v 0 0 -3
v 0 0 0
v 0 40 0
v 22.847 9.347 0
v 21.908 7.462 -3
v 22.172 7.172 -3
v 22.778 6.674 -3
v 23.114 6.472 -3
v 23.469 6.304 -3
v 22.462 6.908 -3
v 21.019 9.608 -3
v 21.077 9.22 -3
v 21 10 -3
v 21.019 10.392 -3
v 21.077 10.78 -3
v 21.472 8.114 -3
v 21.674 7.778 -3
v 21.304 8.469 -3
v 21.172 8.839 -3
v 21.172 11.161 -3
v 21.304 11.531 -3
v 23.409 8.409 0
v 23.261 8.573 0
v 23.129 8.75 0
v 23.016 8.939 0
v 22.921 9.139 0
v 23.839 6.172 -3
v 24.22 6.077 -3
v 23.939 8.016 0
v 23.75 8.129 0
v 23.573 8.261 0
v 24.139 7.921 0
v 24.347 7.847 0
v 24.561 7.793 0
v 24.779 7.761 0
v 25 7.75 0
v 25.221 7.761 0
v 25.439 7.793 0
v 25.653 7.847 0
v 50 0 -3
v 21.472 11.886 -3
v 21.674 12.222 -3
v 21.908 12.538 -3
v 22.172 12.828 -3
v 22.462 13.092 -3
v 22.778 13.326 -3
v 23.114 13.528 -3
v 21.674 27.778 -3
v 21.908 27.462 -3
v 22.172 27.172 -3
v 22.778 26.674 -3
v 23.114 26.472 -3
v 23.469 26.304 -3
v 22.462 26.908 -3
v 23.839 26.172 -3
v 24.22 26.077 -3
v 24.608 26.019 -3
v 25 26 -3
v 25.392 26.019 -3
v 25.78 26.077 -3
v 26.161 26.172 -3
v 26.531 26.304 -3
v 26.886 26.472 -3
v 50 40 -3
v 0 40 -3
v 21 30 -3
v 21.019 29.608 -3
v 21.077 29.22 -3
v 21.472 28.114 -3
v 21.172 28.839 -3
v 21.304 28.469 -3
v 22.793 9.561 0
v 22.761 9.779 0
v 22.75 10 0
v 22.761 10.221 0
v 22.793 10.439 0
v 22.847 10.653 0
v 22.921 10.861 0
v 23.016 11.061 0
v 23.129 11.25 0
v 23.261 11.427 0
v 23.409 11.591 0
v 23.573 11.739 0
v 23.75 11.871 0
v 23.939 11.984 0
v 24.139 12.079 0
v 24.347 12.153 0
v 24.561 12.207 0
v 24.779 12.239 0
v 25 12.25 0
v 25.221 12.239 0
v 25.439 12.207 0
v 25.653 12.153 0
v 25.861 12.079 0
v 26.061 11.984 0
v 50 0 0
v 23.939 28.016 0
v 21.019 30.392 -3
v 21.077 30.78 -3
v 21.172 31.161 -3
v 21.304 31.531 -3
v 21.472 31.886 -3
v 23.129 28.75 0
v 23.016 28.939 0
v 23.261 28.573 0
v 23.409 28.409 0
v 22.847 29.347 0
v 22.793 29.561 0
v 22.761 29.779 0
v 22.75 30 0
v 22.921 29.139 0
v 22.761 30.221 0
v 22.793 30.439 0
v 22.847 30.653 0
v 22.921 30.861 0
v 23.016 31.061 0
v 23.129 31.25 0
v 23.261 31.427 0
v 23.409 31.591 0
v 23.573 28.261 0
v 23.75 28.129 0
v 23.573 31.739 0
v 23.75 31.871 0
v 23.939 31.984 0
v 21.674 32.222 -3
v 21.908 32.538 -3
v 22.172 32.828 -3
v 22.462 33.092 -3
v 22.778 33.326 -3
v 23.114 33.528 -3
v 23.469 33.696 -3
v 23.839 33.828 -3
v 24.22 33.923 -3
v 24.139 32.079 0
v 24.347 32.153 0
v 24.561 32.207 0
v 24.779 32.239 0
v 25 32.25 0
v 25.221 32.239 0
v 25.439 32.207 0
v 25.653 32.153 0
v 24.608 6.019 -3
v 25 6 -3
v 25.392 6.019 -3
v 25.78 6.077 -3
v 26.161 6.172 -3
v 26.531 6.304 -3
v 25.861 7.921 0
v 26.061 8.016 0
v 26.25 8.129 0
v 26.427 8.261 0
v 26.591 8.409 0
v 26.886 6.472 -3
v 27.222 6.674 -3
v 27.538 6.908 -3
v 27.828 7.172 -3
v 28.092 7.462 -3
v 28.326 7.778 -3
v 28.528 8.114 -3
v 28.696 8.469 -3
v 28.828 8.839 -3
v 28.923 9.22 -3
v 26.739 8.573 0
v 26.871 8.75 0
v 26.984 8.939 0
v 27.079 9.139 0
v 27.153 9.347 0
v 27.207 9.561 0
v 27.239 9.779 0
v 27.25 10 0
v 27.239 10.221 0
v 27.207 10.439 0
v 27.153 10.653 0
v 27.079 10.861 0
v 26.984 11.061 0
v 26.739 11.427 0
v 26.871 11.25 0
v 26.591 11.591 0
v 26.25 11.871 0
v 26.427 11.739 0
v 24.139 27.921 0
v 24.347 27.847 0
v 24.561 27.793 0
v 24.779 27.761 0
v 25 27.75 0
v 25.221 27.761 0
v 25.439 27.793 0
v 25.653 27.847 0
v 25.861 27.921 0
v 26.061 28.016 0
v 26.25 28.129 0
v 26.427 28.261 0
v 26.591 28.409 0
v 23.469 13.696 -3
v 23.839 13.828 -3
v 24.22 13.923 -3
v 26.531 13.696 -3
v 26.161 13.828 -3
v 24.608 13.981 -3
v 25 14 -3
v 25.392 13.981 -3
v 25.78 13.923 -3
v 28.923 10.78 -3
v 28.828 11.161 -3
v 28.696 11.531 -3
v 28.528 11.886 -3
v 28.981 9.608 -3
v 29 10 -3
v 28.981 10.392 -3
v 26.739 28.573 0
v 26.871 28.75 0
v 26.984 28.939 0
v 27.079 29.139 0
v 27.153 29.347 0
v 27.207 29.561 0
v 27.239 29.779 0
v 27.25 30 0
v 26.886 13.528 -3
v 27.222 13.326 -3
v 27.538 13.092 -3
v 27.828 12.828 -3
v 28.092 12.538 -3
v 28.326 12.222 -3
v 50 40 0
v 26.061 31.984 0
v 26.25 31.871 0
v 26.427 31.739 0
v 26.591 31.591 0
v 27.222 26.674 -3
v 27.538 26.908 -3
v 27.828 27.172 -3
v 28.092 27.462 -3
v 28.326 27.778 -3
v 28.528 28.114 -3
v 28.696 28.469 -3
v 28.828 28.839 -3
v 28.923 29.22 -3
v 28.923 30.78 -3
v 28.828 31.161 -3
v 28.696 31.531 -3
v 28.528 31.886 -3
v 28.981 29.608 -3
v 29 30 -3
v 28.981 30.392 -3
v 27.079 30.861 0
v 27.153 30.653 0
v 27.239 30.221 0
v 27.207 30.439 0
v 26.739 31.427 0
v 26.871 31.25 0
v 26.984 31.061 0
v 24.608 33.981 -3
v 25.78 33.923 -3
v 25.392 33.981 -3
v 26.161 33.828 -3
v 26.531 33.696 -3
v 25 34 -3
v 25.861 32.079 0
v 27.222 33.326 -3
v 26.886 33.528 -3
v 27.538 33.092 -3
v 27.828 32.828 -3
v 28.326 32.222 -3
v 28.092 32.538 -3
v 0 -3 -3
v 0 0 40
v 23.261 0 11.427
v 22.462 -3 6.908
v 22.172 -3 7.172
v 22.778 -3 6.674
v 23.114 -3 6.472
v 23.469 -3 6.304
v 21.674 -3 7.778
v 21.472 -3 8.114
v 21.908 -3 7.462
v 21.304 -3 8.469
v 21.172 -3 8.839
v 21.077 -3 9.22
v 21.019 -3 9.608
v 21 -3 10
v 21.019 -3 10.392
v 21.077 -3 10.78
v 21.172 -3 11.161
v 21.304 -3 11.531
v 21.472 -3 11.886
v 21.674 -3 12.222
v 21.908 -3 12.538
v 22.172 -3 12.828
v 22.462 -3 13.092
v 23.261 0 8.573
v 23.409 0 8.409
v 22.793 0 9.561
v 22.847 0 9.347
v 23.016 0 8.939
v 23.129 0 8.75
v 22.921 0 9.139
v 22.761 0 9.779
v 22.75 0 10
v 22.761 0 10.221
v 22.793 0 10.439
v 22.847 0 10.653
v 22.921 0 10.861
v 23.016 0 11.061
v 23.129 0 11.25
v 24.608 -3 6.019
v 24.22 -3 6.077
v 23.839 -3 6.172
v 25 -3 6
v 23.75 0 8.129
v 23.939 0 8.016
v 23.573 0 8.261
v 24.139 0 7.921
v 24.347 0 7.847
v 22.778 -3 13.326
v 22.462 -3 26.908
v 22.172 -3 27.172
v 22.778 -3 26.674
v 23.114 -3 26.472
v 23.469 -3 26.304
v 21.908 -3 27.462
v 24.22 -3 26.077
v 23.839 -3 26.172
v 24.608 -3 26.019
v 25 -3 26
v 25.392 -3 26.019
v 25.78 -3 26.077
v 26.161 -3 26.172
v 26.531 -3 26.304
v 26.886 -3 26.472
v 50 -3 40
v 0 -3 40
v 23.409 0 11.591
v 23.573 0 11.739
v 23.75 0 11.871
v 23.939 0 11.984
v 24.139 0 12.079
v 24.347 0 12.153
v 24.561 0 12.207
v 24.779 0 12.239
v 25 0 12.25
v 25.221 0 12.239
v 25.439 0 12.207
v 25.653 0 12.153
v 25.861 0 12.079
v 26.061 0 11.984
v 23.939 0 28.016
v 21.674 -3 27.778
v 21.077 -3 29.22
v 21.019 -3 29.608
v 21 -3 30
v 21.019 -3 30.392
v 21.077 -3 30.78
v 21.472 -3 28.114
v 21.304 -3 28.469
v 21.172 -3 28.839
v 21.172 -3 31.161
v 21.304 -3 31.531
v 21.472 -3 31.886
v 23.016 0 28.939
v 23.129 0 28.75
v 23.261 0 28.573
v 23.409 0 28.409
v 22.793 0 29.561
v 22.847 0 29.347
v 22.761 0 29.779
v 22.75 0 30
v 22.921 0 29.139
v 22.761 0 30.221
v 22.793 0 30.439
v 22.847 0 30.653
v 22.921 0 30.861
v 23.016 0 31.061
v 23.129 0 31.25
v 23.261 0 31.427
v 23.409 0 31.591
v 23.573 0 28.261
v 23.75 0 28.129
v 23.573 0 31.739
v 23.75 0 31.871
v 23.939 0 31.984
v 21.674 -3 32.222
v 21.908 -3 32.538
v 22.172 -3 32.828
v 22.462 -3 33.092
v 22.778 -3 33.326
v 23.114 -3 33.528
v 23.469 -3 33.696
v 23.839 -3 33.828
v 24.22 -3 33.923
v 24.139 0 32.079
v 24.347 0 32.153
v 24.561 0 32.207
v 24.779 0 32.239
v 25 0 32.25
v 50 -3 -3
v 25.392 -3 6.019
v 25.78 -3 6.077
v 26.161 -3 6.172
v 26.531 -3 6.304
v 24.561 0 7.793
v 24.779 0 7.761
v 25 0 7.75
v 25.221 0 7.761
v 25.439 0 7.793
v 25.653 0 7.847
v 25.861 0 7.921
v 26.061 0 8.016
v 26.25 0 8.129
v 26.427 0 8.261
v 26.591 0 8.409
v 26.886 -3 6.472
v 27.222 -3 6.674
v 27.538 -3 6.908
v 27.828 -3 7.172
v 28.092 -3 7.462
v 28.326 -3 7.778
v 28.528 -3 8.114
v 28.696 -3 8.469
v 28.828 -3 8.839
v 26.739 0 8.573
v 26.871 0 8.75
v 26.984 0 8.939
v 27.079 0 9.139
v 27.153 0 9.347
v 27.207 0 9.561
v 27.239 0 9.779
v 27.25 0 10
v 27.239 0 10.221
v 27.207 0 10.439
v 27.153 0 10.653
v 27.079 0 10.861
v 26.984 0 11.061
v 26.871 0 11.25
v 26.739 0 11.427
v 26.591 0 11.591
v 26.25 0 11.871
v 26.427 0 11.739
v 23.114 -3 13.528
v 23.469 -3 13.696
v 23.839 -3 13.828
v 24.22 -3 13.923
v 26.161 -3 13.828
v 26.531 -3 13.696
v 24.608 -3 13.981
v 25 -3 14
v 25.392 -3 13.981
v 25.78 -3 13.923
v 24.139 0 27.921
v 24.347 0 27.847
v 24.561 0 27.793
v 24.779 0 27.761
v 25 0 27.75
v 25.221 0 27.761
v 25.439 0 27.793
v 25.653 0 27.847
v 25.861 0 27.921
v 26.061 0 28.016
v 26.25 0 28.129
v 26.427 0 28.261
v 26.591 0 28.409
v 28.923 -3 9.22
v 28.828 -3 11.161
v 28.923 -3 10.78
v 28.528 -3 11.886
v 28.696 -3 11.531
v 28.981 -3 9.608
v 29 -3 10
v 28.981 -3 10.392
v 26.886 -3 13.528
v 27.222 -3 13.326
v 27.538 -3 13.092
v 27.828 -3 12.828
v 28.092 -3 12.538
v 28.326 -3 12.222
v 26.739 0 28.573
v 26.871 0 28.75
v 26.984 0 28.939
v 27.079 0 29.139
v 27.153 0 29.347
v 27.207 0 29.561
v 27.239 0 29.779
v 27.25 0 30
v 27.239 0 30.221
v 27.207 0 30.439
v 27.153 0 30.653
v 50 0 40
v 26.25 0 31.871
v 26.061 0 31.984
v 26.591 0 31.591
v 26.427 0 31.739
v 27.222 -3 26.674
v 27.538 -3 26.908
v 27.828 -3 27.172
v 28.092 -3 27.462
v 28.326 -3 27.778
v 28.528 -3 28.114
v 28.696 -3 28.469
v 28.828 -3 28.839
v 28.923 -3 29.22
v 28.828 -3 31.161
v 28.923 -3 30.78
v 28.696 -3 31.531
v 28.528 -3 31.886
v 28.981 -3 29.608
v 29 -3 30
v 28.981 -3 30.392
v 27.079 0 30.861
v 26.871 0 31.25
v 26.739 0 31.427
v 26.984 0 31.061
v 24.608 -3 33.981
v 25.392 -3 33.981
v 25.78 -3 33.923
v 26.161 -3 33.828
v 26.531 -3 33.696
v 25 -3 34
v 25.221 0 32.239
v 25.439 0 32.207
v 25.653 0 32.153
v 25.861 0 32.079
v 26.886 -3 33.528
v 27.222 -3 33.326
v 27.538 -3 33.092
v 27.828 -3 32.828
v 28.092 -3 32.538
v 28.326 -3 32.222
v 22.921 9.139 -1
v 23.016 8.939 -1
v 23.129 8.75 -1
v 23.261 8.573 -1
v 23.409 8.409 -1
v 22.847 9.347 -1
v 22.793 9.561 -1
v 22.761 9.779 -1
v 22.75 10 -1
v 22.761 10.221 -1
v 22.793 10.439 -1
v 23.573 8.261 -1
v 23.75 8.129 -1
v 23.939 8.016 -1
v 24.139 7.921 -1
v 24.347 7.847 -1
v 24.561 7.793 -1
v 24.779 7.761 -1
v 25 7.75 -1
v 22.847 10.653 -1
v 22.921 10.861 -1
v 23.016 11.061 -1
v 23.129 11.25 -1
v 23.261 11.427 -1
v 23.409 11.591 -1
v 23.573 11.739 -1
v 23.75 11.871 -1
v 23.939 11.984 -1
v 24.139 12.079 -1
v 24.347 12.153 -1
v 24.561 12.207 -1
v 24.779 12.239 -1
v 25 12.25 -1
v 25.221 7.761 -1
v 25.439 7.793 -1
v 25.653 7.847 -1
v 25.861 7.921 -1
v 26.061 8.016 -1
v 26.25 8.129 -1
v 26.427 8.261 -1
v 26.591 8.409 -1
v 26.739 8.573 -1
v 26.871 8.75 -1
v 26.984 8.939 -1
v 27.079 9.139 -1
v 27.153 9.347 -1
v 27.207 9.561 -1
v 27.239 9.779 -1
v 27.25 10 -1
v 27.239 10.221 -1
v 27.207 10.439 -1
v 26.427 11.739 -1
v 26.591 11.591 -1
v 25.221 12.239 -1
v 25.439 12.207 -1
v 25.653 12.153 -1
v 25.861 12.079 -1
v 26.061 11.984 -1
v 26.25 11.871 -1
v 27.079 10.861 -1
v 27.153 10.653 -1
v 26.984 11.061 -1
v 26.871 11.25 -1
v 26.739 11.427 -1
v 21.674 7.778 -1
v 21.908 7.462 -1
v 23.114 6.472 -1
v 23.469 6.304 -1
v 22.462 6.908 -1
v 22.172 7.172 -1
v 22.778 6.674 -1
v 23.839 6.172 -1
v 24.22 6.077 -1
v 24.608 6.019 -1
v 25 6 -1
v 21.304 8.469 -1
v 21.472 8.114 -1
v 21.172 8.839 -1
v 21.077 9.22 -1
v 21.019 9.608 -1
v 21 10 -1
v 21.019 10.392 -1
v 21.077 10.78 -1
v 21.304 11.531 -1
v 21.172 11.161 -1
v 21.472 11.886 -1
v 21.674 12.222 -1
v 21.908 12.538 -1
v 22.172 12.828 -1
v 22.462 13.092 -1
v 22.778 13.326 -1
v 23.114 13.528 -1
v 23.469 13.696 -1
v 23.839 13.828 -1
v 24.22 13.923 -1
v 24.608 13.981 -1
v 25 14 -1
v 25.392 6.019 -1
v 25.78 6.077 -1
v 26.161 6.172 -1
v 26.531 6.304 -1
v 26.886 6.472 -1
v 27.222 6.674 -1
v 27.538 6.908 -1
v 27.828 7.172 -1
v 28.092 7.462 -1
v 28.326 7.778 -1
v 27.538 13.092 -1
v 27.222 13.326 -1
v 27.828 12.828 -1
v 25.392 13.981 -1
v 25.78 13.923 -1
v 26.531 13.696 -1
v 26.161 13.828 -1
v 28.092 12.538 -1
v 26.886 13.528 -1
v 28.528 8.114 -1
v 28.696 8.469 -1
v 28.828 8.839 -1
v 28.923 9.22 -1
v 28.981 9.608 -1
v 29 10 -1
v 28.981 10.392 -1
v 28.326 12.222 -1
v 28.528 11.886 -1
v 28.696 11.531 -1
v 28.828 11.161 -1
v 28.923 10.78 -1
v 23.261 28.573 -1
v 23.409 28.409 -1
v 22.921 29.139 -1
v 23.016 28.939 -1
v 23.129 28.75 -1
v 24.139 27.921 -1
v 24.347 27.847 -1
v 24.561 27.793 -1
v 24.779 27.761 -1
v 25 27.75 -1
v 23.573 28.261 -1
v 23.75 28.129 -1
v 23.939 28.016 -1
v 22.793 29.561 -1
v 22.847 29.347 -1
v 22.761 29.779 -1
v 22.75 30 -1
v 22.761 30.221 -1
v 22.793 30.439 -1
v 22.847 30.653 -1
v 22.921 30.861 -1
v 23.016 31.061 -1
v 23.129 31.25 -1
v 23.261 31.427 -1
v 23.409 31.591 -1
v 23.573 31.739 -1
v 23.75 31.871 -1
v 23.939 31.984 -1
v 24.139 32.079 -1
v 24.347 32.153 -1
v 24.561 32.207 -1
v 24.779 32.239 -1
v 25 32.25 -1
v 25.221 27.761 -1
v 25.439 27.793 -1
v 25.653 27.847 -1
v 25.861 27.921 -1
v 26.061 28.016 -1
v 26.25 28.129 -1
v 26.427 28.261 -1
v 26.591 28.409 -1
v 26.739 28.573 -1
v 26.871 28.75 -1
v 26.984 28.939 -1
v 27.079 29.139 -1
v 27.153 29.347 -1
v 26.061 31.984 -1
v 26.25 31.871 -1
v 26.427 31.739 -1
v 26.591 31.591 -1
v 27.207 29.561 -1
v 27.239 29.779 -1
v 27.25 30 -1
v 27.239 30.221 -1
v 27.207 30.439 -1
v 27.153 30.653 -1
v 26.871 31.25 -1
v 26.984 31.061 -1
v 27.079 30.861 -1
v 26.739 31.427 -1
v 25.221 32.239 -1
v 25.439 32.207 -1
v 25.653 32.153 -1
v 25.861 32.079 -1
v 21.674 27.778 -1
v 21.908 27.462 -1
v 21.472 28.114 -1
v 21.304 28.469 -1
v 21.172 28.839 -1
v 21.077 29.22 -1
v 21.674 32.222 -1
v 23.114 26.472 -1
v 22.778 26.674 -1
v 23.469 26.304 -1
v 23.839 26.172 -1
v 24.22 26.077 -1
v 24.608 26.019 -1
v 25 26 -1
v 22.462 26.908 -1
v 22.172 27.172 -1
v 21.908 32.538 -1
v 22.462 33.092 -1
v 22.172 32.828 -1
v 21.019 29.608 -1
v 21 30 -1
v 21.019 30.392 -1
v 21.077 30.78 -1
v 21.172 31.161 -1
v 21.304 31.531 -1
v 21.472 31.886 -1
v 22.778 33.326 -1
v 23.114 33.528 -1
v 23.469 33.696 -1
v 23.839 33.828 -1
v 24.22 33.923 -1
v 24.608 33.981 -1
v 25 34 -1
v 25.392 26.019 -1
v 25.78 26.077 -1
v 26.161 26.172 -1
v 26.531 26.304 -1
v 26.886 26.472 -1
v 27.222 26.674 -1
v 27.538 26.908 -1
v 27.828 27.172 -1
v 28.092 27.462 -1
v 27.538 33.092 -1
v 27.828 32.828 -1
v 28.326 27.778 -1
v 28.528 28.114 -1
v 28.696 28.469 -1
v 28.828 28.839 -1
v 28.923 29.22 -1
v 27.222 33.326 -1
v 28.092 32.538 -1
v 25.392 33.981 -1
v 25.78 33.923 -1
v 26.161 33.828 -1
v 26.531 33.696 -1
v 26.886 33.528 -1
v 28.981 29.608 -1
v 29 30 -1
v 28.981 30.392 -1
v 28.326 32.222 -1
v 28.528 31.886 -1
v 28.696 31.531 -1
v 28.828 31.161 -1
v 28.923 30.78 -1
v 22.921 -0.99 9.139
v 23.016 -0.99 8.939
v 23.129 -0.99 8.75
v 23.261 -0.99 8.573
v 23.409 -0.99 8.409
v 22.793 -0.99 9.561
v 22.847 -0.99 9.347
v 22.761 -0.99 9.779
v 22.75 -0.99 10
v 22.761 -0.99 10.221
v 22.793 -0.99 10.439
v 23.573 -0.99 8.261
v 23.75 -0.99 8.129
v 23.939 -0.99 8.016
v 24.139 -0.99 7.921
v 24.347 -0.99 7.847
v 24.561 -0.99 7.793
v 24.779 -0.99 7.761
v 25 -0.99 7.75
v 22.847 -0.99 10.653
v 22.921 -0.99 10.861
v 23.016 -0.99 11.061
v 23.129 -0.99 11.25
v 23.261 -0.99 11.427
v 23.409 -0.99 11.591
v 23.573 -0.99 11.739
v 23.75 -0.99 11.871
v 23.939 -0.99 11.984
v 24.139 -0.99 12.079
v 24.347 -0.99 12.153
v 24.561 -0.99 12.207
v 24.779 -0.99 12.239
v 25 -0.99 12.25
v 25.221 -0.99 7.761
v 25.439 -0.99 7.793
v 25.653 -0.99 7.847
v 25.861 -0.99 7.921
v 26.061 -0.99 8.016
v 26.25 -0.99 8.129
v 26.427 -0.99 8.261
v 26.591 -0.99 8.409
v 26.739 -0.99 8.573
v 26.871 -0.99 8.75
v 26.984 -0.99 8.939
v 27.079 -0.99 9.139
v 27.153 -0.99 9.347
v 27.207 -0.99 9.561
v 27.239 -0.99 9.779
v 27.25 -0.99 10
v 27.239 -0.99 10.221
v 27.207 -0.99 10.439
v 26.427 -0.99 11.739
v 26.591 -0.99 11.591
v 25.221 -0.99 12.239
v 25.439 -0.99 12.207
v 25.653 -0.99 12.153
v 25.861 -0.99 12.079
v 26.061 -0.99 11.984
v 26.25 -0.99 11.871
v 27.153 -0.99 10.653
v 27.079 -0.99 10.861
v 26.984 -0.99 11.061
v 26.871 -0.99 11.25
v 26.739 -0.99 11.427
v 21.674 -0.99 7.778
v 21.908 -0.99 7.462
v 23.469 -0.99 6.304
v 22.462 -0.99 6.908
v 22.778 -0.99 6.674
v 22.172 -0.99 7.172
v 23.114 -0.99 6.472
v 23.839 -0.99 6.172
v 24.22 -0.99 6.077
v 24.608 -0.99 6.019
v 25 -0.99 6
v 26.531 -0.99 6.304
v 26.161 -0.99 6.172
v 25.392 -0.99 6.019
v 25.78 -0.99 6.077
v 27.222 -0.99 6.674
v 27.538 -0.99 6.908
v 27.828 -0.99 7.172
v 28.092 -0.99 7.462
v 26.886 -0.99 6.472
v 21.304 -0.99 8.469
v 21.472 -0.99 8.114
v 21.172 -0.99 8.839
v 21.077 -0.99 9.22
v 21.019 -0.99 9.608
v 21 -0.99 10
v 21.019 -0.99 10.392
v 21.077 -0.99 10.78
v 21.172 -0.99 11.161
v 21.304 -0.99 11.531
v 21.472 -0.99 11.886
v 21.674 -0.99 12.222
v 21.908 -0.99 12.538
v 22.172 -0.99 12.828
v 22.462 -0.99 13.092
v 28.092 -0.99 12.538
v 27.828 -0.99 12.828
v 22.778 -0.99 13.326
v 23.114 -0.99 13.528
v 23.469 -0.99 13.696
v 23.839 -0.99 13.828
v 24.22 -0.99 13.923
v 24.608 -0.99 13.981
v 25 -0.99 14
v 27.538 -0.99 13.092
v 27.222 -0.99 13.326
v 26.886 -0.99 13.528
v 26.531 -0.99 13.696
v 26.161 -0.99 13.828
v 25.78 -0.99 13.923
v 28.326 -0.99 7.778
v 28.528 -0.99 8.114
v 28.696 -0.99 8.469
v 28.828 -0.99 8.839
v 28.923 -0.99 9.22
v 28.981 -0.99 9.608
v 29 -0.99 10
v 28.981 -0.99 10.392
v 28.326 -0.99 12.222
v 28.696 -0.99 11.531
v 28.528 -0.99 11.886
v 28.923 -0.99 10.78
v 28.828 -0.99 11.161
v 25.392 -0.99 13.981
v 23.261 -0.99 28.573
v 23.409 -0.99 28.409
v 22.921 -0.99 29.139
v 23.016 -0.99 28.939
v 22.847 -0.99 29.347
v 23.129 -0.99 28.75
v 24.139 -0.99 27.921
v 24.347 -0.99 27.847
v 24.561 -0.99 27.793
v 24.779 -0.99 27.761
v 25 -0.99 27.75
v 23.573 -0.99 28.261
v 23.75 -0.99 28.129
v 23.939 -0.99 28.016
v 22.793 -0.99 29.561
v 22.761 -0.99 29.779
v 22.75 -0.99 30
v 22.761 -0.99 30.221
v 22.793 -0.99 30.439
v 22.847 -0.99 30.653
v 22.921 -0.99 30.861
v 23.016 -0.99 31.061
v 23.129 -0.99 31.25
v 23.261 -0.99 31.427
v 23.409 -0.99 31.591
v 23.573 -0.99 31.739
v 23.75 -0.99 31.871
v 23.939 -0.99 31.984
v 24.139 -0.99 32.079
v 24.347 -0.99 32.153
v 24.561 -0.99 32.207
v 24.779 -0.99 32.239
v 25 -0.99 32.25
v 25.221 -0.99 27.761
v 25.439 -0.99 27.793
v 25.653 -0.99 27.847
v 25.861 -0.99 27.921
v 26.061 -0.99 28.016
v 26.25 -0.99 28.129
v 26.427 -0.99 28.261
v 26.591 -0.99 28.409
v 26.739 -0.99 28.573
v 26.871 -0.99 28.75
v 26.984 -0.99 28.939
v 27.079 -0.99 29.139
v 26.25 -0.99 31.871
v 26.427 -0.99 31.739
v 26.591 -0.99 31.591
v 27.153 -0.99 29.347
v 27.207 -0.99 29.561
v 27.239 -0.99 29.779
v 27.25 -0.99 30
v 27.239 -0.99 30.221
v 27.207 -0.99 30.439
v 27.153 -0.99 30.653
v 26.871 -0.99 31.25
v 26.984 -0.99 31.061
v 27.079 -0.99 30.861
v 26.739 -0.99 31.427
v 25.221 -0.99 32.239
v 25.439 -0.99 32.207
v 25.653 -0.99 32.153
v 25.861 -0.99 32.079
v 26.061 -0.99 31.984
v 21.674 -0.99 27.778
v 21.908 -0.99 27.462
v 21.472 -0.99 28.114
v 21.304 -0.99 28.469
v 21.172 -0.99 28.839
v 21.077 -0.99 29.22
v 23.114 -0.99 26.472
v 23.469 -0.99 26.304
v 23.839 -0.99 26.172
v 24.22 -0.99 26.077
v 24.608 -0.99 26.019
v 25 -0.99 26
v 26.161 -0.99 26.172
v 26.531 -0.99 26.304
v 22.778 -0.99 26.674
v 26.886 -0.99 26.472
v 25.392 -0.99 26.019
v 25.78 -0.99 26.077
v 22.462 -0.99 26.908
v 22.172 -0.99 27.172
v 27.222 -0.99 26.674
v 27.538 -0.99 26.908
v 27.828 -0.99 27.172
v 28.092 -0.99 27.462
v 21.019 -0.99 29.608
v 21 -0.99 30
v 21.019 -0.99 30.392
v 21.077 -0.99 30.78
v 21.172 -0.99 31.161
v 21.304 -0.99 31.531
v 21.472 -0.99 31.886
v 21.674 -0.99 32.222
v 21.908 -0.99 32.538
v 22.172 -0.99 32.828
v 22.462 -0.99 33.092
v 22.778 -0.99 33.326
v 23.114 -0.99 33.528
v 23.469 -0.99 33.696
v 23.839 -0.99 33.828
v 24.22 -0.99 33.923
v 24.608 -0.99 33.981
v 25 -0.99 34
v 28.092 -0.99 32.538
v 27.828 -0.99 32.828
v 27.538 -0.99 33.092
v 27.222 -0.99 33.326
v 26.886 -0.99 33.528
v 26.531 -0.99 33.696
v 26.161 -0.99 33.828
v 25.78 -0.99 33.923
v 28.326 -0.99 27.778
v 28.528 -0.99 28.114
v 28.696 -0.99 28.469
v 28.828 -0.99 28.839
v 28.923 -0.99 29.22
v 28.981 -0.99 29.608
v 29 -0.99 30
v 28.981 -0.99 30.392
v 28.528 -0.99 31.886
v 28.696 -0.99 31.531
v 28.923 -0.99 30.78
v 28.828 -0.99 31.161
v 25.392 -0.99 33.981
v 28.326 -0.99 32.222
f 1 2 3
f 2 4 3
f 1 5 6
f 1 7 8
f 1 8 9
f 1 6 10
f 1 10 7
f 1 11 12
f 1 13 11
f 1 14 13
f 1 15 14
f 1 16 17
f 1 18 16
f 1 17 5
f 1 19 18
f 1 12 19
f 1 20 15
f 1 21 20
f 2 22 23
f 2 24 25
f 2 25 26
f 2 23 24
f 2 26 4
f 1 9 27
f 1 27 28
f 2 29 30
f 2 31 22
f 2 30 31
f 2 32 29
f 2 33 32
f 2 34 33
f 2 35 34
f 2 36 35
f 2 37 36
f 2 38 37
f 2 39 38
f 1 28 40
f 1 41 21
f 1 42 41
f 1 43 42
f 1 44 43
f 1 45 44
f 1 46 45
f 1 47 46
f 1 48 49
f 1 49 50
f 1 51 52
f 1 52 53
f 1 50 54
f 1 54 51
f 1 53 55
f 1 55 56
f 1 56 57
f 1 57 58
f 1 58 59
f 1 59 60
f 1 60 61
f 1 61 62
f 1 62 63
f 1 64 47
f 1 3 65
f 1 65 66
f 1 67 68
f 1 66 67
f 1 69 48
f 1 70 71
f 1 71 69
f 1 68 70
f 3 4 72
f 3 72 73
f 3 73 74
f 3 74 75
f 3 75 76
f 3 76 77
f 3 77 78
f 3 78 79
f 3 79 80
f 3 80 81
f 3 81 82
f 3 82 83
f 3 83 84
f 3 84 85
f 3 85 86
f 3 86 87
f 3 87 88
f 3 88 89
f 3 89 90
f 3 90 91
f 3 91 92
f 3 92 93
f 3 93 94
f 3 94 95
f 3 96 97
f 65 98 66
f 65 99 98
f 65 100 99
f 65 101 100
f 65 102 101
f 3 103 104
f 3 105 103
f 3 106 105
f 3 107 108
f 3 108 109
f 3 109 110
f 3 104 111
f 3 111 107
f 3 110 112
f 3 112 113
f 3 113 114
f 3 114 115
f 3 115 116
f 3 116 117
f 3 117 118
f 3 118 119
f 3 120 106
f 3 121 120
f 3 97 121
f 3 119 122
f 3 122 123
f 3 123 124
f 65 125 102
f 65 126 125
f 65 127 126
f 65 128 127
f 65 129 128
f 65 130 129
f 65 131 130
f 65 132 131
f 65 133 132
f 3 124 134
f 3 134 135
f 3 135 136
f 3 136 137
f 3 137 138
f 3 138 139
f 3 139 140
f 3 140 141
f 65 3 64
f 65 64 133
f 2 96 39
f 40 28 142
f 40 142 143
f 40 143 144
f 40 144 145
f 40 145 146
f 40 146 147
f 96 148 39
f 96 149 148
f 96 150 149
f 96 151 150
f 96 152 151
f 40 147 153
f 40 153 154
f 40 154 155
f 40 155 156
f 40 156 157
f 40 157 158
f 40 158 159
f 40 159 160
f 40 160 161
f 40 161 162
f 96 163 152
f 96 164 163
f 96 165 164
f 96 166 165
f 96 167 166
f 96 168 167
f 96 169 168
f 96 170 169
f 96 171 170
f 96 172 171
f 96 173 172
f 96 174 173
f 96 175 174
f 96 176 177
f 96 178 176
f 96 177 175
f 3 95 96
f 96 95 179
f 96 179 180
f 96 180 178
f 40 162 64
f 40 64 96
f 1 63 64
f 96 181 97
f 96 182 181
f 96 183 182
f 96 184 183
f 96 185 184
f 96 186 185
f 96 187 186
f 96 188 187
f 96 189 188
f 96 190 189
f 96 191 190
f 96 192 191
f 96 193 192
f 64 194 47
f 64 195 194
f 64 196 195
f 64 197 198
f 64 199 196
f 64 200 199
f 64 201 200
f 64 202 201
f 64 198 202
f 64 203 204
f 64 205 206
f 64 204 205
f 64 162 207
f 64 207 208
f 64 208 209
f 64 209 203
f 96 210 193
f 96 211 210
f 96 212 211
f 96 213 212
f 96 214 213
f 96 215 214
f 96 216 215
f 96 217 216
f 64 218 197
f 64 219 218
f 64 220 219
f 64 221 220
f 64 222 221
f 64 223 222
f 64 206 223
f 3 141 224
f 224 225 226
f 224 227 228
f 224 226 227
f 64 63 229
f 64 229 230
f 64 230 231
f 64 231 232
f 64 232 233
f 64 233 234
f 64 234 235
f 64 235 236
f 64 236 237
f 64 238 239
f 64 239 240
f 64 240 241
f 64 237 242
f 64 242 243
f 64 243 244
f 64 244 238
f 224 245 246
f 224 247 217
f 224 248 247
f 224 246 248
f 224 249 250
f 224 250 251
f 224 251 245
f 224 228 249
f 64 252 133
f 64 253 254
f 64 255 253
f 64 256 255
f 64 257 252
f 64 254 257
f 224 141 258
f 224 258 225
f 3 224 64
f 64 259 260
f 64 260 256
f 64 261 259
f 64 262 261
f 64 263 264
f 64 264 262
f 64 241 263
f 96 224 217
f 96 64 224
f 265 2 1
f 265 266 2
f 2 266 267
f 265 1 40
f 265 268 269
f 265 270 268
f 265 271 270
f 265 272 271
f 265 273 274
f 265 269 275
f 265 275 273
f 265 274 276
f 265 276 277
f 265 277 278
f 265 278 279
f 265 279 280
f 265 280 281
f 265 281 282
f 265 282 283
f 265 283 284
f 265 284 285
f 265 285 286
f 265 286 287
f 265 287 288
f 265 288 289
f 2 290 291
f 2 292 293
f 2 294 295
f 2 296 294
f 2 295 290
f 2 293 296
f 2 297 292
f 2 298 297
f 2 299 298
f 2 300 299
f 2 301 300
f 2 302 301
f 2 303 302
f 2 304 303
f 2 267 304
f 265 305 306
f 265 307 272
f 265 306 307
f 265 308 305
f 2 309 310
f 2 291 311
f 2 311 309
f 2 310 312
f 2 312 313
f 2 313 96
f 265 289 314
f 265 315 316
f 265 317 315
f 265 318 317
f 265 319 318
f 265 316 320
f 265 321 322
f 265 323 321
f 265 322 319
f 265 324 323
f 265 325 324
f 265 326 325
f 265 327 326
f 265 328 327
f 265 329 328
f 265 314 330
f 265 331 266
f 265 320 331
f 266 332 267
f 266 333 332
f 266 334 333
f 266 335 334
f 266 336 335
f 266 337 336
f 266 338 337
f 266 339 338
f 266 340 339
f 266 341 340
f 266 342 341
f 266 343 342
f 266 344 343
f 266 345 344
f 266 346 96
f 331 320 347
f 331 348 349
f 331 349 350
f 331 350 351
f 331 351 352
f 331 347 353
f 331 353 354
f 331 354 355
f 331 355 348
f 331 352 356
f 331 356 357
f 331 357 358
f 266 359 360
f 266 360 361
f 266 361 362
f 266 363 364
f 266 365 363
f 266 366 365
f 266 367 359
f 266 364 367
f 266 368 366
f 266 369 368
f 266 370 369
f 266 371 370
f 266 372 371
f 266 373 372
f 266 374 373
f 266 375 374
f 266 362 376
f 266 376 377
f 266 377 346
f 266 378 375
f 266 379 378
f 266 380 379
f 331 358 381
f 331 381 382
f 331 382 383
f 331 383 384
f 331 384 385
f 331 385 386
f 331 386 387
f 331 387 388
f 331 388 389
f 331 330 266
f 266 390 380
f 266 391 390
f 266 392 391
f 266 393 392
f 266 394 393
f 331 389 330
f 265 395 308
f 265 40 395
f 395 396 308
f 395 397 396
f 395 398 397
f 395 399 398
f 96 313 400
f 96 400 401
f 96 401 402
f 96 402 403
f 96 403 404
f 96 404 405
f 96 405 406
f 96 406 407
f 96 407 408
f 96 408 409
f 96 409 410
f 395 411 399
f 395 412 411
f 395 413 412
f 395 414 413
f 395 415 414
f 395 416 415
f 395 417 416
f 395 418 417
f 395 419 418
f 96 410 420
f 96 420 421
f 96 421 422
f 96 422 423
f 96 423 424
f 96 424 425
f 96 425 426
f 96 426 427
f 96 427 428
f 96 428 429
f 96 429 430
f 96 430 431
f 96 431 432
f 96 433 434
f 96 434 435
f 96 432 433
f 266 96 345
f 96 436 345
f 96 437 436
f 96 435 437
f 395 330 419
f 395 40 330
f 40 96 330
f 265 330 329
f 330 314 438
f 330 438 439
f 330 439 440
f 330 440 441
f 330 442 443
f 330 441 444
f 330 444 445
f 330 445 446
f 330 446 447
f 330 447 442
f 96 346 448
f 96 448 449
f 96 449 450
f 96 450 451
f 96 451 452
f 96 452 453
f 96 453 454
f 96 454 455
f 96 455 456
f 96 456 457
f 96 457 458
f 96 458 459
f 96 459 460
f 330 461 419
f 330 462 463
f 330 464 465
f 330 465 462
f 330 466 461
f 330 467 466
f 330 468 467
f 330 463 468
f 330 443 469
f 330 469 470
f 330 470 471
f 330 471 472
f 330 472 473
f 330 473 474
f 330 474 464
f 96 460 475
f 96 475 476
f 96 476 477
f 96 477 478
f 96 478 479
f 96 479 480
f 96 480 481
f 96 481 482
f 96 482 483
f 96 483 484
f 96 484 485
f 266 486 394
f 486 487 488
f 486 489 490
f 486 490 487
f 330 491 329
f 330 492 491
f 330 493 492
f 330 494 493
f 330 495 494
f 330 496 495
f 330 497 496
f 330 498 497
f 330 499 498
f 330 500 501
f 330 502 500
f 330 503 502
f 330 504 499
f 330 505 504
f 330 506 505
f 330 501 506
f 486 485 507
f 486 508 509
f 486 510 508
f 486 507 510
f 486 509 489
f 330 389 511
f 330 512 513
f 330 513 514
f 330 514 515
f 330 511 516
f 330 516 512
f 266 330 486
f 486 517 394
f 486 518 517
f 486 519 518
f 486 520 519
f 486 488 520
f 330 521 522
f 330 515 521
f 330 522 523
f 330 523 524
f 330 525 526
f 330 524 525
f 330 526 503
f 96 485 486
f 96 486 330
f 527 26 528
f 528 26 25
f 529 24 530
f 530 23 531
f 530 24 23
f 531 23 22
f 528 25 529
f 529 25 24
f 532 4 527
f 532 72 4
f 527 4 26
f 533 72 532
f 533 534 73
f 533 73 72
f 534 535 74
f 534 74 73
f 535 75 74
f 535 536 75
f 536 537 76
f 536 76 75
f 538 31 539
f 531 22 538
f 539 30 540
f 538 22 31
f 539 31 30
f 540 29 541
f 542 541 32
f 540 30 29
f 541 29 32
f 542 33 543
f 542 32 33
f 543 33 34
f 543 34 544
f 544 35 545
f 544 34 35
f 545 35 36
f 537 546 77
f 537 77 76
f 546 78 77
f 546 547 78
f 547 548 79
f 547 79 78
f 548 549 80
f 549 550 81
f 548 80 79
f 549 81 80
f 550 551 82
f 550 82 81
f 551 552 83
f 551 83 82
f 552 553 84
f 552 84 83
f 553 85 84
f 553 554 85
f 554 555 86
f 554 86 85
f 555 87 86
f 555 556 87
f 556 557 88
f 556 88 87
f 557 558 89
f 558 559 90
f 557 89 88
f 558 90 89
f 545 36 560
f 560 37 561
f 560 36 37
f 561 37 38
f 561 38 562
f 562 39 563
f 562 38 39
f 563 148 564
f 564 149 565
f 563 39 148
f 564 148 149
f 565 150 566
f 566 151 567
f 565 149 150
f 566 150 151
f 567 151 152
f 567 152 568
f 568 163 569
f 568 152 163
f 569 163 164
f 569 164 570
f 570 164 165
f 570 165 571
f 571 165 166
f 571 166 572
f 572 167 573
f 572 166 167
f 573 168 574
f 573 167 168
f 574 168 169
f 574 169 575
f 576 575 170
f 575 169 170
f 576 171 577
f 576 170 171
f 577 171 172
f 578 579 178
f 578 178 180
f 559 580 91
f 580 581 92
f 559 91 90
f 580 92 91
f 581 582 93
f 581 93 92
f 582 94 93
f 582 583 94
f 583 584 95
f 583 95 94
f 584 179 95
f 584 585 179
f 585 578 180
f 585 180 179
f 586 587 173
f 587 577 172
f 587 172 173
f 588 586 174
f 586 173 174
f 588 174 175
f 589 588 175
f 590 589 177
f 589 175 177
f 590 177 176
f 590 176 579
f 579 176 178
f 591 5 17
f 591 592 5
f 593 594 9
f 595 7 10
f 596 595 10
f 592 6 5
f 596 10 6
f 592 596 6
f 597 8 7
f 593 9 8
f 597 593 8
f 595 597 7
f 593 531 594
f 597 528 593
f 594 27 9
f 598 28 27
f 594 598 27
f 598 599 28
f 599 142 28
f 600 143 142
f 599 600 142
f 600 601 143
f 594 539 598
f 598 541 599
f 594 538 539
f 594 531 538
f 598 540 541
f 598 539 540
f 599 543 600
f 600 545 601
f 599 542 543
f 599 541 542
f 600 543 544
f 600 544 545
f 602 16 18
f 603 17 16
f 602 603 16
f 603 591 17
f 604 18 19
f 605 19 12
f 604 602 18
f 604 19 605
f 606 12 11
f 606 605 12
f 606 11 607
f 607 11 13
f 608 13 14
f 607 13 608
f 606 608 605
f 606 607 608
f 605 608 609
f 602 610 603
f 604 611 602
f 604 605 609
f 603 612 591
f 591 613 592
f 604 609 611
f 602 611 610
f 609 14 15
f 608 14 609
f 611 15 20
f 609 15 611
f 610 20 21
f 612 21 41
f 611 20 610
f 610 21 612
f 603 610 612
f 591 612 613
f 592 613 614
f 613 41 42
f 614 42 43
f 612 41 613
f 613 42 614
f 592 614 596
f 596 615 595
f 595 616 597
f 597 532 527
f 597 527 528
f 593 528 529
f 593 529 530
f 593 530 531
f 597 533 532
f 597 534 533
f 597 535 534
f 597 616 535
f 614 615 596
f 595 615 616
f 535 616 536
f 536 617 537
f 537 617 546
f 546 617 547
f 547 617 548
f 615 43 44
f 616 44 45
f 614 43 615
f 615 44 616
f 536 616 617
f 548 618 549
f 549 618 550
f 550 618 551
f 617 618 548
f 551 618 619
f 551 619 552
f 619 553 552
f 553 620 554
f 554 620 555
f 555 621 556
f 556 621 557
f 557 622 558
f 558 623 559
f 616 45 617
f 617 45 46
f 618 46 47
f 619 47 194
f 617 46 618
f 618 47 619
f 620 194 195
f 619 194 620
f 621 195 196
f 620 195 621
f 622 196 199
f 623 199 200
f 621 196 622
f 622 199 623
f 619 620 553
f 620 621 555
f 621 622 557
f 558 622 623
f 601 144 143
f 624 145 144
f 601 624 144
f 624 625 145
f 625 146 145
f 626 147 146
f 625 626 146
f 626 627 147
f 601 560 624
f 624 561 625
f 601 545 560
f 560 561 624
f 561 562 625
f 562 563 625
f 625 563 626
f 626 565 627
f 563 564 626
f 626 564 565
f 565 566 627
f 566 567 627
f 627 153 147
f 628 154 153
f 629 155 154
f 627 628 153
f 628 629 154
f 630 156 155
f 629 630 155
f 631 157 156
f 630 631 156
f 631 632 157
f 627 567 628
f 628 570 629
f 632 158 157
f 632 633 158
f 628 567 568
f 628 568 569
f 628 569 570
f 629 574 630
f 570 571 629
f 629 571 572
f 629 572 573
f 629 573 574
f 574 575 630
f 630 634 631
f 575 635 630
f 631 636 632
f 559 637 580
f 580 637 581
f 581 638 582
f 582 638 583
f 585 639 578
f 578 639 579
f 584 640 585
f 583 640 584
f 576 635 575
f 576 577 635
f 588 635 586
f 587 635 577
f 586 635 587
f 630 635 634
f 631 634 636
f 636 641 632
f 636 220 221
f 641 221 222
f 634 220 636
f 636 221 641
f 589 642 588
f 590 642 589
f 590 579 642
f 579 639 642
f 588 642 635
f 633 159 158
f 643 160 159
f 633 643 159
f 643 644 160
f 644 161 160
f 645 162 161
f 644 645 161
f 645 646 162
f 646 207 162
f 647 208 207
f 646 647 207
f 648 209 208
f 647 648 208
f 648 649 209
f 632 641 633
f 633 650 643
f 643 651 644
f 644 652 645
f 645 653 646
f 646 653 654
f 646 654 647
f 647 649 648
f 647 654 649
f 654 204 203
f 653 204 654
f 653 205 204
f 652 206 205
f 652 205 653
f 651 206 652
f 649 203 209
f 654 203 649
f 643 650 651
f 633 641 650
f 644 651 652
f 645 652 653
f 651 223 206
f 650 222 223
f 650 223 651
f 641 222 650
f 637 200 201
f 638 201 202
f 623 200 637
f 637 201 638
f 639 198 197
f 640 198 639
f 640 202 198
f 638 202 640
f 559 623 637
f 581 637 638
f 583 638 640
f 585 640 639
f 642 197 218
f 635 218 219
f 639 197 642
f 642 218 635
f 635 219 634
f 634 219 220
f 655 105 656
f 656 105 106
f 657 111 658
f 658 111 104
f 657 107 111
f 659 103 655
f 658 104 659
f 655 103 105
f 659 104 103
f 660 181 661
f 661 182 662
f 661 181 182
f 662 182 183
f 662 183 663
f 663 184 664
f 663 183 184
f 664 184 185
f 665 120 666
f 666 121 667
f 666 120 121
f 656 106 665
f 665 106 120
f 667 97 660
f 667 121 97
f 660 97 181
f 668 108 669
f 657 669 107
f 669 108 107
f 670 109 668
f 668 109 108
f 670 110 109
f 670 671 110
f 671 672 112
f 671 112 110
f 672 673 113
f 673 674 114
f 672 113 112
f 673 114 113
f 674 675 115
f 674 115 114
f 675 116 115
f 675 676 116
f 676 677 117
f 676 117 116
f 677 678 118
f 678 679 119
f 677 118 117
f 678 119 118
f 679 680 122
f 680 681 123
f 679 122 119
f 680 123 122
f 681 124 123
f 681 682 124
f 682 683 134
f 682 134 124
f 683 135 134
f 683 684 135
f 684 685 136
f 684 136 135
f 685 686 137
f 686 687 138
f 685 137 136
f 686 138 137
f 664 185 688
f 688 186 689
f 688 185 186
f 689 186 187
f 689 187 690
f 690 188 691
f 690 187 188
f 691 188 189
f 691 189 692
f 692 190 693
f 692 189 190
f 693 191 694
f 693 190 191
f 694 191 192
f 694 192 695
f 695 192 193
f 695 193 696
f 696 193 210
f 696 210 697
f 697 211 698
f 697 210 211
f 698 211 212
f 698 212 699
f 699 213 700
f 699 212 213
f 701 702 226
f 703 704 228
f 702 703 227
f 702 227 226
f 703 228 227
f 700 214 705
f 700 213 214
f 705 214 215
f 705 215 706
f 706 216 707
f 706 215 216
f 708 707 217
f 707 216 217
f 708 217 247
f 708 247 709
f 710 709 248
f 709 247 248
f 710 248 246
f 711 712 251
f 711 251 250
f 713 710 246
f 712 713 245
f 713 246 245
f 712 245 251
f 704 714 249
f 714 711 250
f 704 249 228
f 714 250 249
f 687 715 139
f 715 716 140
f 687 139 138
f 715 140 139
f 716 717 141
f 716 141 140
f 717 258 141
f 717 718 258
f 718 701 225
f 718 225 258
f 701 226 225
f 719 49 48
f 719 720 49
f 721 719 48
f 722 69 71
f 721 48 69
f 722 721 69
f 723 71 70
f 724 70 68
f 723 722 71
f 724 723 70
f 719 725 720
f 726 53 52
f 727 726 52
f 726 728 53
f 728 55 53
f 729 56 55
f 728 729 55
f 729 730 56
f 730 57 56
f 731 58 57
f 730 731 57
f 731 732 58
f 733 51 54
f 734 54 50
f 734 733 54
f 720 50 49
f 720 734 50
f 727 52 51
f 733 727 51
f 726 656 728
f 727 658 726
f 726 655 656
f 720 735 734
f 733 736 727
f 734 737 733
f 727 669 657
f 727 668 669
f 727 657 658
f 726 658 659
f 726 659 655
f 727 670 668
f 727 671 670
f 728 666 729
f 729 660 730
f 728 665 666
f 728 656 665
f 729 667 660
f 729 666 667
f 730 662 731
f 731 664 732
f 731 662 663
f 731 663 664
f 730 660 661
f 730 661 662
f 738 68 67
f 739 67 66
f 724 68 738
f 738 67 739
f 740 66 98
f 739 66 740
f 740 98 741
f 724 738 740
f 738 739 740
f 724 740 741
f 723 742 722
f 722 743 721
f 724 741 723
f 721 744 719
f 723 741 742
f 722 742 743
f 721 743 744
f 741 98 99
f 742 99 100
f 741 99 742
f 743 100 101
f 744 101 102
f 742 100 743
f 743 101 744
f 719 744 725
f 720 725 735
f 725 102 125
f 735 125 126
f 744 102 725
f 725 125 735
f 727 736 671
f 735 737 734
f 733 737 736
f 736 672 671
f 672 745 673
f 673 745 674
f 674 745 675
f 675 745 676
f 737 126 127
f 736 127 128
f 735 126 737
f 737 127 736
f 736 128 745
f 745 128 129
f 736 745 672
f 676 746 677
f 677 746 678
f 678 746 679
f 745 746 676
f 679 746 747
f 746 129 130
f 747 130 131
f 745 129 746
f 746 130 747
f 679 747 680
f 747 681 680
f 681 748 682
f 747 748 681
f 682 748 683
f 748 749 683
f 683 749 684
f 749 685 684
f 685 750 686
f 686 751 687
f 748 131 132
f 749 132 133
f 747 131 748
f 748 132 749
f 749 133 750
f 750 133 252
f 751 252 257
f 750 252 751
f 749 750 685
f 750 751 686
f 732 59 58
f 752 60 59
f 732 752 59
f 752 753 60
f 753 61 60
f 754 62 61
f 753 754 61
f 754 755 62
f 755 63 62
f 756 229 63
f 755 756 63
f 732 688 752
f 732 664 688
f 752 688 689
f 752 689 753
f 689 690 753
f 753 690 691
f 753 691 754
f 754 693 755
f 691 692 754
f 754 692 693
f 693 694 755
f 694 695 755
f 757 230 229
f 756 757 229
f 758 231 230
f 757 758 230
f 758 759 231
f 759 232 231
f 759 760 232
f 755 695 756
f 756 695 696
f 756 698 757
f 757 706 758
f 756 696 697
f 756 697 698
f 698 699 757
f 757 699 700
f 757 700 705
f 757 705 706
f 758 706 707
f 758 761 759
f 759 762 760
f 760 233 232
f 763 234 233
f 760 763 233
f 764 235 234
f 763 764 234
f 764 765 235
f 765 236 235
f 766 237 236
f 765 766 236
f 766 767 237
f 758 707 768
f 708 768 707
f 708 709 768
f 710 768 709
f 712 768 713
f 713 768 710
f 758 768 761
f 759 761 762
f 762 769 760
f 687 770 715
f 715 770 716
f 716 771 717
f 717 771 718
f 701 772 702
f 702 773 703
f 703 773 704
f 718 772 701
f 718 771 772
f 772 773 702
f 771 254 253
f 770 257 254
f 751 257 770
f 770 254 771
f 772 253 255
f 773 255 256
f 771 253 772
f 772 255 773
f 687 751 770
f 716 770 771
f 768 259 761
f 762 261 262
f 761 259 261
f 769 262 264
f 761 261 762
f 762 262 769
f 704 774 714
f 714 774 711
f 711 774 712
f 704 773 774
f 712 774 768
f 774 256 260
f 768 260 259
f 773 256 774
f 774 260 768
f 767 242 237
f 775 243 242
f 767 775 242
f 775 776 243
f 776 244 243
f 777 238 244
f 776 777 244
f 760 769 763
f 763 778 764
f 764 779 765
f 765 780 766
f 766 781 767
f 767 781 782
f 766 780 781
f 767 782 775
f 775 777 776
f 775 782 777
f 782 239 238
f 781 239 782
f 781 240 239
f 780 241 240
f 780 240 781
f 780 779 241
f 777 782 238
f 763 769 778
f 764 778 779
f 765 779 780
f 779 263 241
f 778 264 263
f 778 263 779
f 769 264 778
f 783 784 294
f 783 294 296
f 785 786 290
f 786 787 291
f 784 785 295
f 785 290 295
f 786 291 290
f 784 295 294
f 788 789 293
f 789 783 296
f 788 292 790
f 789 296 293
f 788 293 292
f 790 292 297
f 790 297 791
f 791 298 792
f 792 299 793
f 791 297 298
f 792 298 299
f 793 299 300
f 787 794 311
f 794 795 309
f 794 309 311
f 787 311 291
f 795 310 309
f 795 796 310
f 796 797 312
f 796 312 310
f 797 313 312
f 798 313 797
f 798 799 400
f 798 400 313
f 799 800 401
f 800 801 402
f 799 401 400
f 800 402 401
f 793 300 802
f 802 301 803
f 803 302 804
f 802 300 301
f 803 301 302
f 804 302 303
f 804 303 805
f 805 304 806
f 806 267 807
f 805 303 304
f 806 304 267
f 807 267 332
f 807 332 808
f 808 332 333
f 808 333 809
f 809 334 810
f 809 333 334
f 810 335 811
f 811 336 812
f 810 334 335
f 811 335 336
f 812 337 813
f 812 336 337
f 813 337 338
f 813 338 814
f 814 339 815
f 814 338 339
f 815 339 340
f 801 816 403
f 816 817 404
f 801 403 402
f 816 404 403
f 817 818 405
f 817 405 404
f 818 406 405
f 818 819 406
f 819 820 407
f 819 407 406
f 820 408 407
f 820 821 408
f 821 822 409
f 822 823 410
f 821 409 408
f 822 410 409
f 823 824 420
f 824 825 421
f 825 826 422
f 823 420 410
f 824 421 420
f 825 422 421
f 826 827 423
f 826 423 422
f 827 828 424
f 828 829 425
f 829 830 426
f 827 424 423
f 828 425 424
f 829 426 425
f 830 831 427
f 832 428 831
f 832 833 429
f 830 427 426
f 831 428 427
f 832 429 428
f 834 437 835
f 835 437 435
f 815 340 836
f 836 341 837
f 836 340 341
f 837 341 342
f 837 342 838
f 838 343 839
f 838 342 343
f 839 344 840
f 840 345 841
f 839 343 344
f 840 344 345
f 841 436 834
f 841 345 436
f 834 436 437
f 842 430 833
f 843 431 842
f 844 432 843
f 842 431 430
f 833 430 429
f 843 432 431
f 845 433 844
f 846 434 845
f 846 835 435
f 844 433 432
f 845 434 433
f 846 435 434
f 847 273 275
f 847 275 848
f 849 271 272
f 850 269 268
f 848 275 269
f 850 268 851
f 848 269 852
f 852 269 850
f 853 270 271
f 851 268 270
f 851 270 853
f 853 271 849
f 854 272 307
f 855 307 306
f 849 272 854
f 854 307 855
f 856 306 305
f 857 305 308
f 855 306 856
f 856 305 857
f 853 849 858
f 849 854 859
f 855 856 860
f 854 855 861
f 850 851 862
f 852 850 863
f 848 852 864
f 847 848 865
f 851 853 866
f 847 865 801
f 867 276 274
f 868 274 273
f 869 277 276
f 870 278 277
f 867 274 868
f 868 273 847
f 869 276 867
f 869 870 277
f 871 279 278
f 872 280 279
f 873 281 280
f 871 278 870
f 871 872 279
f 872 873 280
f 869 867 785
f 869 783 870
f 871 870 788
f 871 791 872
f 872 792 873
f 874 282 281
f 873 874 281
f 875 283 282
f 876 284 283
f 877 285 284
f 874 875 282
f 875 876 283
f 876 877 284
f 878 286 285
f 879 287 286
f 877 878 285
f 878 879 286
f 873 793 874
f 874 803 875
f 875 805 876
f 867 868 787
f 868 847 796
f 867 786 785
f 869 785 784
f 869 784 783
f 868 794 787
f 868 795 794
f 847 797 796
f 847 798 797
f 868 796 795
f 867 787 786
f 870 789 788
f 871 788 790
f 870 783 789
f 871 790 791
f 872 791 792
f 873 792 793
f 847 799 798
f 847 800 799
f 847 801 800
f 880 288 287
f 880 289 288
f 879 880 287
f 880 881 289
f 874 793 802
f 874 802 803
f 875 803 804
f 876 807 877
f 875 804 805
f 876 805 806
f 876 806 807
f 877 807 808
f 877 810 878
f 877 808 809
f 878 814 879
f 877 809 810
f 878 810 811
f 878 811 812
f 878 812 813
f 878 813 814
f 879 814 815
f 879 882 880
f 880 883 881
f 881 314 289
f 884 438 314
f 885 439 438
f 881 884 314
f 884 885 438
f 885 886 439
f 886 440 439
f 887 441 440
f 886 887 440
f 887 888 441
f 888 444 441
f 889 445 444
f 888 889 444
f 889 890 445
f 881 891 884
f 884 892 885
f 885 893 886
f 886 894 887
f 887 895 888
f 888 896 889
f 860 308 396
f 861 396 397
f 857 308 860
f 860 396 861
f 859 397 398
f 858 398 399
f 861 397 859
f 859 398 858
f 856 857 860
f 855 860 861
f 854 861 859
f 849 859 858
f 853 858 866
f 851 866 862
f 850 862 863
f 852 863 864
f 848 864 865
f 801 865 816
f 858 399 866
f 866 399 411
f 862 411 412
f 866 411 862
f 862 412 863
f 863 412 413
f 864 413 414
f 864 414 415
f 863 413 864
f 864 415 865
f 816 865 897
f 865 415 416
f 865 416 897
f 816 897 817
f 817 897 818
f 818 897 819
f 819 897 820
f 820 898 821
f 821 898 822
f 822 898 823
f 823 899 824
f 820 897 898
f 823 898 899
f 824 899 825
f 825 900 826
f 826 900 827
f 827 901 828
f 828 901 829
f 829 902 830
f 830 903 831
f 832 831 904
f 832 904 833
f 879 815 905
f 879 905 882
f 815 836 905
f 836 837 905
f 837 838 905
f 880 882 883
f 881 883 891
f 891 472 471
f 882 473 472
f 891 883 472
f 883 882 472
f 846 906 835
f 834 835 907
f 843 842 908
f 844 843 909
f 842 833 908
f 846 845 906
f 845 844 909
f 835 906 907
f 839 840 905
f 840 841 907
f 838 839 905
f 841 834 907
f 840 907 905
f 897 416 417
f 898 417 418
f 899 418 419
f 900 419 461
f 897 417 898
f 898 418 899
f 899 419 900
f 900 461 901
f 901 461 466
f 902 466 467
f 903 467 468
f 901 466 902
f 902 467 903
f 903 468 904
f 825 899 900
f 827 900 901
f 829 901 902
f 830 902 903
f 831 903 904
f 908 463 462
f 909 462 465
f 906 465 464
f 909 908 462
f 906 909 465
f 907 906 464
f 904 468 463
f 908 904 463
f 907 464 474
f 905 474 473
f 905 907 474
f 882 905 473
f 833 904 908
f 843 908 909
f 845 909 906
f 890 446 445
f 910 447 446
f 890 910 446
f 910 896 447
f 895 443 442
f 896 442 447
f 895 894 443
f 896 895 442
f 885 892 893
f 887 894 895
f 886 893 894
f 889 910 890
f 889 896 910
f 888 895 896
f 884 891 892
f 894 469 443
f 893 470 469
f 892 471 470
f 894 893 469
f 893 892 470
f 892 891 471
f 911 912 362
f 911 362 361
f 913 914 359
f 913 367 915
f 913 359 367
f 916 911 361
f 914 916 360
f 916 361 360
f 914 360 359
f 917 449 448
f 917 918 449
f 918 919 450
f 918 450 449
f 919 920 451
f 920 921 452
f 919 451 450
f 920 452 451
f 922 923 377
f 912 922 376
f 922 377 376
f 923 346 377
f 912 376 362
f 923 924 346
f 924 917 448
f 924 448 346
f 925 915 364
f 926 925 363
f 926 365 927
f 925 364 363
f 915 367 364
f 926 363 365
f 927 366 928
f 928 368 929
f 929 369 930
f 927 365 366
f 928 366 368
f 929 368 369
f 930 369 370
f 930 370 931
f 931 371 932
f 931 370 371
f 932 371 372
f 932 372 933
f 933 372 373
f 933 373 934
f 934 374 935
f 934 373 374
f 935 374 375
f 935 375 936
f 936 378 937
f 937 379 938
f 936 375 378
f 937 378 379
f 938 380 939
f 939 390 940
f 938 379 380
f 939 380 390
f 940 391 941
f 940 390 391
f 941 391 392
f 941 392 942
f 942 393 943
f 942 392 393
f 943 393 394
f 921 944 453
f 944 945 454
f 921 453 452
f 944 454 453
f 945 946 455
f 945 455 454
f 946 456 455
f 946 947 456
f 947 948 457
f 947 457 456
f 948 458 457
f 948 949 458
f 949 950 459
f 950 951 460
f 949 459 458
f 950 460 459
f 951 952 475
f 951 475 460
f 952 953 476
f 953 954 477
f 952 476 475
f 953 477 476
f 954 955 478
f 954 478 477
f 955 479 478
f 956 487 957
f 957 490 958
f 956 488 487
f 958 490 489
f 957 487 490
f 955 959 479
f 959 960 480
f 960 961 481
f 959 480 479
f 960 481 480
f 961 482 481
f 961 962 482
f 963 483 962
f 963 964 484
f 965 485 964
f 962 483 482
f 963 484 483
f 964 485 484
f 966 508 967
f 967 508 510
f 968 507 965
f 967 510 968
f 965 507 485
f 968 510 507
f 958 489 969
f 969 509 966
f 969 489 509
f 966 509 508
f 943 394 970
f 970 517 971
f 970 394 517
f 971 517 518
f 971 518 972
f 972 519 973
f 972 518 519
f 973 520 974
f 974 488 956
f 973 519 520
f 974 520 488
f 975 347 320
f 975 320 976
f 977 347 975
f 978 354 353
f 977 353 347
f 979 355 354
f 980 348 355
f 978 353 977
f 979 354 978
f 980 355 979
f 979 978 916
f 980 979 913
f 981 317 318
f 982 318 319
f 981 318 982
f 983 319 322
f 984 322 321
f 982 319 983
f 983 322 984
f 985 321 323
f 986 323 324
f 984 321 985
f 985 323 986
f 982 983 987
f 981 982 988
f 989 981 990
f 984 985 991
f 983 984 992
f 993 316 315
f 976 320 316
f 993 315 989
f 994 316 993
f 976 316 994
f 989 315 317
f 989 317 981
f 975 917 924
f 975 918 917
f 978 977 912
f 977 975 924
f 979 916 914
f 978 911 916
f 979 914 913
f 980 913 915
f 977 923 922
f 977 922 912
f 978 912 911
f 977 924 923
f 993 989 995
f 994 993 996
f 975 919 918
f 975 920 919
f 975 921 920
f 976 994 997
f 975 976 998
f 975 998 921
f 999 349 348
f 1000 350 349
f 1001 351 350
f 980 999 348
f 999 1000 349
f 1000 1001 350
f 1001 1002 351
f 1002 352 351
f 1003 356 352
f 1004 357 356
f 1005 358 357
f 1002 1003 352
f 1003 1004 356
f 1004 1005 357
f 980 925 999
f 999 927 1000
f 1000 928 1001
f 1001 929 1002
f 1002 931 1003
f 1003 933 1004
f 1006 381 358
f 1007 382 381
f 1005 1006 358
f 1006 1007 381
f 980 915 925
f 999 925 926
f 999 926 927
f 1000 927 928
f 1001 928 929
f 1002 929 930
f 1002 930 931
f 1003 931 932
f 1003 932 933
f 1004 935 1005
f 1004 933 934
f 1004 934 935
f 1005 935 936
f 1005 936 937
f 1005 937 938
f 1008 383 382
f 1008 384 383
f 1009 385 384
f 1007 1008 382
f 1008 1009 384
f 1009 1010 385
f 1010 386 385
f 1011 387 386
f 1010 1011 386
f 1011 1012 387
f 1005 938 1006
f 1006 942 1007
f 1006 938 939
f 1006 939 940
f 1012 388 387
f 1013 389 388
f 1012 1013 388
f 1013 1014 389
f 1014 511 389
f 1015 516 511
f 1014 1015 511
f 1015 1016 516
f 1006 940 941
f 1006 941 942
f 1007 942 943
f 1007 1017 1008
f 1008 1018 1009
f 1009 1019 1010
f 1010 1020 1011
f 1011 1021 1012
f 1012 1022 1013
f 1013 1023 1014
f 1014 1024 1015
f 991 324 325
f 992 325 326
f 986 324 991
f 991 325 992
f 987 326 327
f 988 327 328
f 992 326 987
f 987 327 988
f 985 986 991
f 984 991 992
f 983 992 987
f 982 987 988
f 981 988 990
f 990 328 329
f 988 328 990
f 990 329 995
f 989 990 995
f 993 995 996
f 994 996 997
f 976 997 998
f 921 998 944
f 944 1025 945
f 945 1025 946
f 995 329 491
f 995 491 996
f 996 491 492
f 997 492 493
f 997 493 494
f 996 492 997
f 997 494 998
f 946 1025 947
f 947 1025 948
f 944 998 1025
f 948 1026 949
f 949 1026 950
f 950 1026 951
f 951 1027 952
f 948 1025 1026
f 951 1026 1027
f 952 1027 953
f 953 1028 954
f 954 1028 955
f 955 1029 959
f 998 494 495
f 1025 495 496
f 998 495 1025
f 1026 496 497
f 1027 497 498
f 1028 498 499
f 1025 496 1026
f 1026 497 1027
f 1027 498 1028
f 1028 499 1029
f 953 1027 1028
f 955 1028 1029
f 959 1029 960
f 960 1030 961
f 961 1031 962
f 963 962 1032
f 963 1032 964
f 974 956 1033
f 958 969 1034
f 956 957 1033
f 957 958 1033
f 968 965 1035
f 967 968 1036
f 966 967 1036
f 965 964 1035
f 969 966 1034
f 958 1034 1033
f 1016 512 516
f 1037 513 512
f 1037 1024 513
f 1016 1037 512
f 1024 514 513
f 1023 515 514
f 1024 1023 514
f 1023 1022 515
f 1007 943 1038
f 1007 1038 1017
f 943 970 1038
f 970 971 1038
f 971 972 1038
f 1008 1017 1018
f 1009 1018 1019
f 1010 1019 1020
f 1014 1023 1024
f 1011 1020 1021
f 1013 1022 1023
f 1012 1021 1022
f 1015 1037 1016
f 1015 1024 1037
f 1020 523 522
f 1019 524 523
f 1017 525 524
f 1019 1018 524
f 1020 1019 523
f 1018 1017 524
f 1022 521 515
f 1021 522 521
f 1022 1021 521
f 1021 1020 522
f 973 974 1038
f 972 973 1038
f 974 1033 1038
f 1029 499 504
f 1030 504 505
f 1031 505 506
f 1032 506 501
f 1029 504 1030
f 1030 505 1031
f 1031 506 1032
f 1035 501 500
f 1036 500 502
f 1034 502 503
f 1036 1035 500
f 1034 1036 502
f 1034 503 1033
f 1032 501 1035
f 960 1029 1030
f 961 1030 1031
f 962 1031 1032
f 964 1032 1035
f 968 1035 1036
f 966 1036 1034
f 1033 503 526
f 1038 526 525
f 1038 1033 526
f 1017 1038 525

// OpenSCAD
// L-bracket with countersunk holes

$fn = 64;

// Parameters
width = 50;       // X direction
depth = 40;       // Y direction (horizontal flange depth)
height = 40;      // Z direction (vertical flange height)
thickness = 3;    // plate thickness

hole_dia = 4.5;
csk_dia = 8;
csk_depth = 2;
edge_offset = 10;

// Holes are placed on the centerline of each face (x = width/2),
// 10mm from each edge along the length of the flange.
x_center = width / 2;
pos_a = edge_offset;          // 10mm from inner-corner-side edge
pos_b = depth - edge_offset;  // 10mm from far edge (=30mm)

module l_bracket() {
    difference() {
        union() {
            // Horizontal flange: inner (top) surface at z=0, extends in +Y
            translate([0, 0, -thickness])
                cube([width, depth, thickness]);
            
            // Vertical flange: inner face at y=0, extends in +Z
            // Includes the corner block (z from -thickness to 0) for clean joint
            translate([0, -thickness, -thickness])
                cube([width, thickness, height + thickness]);
        }
        
        // Holes in horizontal flange (through Z), countersink on bottom (outer, -Z)
        for (y = [pos_a, pos_b]) {
            translate([x_center, y, 0]) {
                // through hole
                translate([0, 0, -thickness - 1])
                    cylinder(d = hole_dia, h = thickness + 2);
                // countersink on outer (bottom) face
                translate([0, 0, -thickness - 0.01])
                    cylinder(d = csk_dia, h = csk_depth + 0.01);
            }
        }
        
        // Holes in vertical flange (through Y), countersink on outer (-Y) face
        for (z = [pos_a, pos_b]) {
            translate([x_center, 0, z]) {
                // through hole along Y
                translate([0, 1, 0])
                    rotate([90, 0, 0])
                        cylinder(d = hole_dia, h = thickness + 2);
                // countersink on outer (-Y) face
                translate([0, -thickness + csk_depth + 0.01, 0])
                    rotate([90, 0, 0])
                        cylinder(d = csk_dia, h = csk_depth + 0.01);
            }
        }
    }
}

l_bracket();
